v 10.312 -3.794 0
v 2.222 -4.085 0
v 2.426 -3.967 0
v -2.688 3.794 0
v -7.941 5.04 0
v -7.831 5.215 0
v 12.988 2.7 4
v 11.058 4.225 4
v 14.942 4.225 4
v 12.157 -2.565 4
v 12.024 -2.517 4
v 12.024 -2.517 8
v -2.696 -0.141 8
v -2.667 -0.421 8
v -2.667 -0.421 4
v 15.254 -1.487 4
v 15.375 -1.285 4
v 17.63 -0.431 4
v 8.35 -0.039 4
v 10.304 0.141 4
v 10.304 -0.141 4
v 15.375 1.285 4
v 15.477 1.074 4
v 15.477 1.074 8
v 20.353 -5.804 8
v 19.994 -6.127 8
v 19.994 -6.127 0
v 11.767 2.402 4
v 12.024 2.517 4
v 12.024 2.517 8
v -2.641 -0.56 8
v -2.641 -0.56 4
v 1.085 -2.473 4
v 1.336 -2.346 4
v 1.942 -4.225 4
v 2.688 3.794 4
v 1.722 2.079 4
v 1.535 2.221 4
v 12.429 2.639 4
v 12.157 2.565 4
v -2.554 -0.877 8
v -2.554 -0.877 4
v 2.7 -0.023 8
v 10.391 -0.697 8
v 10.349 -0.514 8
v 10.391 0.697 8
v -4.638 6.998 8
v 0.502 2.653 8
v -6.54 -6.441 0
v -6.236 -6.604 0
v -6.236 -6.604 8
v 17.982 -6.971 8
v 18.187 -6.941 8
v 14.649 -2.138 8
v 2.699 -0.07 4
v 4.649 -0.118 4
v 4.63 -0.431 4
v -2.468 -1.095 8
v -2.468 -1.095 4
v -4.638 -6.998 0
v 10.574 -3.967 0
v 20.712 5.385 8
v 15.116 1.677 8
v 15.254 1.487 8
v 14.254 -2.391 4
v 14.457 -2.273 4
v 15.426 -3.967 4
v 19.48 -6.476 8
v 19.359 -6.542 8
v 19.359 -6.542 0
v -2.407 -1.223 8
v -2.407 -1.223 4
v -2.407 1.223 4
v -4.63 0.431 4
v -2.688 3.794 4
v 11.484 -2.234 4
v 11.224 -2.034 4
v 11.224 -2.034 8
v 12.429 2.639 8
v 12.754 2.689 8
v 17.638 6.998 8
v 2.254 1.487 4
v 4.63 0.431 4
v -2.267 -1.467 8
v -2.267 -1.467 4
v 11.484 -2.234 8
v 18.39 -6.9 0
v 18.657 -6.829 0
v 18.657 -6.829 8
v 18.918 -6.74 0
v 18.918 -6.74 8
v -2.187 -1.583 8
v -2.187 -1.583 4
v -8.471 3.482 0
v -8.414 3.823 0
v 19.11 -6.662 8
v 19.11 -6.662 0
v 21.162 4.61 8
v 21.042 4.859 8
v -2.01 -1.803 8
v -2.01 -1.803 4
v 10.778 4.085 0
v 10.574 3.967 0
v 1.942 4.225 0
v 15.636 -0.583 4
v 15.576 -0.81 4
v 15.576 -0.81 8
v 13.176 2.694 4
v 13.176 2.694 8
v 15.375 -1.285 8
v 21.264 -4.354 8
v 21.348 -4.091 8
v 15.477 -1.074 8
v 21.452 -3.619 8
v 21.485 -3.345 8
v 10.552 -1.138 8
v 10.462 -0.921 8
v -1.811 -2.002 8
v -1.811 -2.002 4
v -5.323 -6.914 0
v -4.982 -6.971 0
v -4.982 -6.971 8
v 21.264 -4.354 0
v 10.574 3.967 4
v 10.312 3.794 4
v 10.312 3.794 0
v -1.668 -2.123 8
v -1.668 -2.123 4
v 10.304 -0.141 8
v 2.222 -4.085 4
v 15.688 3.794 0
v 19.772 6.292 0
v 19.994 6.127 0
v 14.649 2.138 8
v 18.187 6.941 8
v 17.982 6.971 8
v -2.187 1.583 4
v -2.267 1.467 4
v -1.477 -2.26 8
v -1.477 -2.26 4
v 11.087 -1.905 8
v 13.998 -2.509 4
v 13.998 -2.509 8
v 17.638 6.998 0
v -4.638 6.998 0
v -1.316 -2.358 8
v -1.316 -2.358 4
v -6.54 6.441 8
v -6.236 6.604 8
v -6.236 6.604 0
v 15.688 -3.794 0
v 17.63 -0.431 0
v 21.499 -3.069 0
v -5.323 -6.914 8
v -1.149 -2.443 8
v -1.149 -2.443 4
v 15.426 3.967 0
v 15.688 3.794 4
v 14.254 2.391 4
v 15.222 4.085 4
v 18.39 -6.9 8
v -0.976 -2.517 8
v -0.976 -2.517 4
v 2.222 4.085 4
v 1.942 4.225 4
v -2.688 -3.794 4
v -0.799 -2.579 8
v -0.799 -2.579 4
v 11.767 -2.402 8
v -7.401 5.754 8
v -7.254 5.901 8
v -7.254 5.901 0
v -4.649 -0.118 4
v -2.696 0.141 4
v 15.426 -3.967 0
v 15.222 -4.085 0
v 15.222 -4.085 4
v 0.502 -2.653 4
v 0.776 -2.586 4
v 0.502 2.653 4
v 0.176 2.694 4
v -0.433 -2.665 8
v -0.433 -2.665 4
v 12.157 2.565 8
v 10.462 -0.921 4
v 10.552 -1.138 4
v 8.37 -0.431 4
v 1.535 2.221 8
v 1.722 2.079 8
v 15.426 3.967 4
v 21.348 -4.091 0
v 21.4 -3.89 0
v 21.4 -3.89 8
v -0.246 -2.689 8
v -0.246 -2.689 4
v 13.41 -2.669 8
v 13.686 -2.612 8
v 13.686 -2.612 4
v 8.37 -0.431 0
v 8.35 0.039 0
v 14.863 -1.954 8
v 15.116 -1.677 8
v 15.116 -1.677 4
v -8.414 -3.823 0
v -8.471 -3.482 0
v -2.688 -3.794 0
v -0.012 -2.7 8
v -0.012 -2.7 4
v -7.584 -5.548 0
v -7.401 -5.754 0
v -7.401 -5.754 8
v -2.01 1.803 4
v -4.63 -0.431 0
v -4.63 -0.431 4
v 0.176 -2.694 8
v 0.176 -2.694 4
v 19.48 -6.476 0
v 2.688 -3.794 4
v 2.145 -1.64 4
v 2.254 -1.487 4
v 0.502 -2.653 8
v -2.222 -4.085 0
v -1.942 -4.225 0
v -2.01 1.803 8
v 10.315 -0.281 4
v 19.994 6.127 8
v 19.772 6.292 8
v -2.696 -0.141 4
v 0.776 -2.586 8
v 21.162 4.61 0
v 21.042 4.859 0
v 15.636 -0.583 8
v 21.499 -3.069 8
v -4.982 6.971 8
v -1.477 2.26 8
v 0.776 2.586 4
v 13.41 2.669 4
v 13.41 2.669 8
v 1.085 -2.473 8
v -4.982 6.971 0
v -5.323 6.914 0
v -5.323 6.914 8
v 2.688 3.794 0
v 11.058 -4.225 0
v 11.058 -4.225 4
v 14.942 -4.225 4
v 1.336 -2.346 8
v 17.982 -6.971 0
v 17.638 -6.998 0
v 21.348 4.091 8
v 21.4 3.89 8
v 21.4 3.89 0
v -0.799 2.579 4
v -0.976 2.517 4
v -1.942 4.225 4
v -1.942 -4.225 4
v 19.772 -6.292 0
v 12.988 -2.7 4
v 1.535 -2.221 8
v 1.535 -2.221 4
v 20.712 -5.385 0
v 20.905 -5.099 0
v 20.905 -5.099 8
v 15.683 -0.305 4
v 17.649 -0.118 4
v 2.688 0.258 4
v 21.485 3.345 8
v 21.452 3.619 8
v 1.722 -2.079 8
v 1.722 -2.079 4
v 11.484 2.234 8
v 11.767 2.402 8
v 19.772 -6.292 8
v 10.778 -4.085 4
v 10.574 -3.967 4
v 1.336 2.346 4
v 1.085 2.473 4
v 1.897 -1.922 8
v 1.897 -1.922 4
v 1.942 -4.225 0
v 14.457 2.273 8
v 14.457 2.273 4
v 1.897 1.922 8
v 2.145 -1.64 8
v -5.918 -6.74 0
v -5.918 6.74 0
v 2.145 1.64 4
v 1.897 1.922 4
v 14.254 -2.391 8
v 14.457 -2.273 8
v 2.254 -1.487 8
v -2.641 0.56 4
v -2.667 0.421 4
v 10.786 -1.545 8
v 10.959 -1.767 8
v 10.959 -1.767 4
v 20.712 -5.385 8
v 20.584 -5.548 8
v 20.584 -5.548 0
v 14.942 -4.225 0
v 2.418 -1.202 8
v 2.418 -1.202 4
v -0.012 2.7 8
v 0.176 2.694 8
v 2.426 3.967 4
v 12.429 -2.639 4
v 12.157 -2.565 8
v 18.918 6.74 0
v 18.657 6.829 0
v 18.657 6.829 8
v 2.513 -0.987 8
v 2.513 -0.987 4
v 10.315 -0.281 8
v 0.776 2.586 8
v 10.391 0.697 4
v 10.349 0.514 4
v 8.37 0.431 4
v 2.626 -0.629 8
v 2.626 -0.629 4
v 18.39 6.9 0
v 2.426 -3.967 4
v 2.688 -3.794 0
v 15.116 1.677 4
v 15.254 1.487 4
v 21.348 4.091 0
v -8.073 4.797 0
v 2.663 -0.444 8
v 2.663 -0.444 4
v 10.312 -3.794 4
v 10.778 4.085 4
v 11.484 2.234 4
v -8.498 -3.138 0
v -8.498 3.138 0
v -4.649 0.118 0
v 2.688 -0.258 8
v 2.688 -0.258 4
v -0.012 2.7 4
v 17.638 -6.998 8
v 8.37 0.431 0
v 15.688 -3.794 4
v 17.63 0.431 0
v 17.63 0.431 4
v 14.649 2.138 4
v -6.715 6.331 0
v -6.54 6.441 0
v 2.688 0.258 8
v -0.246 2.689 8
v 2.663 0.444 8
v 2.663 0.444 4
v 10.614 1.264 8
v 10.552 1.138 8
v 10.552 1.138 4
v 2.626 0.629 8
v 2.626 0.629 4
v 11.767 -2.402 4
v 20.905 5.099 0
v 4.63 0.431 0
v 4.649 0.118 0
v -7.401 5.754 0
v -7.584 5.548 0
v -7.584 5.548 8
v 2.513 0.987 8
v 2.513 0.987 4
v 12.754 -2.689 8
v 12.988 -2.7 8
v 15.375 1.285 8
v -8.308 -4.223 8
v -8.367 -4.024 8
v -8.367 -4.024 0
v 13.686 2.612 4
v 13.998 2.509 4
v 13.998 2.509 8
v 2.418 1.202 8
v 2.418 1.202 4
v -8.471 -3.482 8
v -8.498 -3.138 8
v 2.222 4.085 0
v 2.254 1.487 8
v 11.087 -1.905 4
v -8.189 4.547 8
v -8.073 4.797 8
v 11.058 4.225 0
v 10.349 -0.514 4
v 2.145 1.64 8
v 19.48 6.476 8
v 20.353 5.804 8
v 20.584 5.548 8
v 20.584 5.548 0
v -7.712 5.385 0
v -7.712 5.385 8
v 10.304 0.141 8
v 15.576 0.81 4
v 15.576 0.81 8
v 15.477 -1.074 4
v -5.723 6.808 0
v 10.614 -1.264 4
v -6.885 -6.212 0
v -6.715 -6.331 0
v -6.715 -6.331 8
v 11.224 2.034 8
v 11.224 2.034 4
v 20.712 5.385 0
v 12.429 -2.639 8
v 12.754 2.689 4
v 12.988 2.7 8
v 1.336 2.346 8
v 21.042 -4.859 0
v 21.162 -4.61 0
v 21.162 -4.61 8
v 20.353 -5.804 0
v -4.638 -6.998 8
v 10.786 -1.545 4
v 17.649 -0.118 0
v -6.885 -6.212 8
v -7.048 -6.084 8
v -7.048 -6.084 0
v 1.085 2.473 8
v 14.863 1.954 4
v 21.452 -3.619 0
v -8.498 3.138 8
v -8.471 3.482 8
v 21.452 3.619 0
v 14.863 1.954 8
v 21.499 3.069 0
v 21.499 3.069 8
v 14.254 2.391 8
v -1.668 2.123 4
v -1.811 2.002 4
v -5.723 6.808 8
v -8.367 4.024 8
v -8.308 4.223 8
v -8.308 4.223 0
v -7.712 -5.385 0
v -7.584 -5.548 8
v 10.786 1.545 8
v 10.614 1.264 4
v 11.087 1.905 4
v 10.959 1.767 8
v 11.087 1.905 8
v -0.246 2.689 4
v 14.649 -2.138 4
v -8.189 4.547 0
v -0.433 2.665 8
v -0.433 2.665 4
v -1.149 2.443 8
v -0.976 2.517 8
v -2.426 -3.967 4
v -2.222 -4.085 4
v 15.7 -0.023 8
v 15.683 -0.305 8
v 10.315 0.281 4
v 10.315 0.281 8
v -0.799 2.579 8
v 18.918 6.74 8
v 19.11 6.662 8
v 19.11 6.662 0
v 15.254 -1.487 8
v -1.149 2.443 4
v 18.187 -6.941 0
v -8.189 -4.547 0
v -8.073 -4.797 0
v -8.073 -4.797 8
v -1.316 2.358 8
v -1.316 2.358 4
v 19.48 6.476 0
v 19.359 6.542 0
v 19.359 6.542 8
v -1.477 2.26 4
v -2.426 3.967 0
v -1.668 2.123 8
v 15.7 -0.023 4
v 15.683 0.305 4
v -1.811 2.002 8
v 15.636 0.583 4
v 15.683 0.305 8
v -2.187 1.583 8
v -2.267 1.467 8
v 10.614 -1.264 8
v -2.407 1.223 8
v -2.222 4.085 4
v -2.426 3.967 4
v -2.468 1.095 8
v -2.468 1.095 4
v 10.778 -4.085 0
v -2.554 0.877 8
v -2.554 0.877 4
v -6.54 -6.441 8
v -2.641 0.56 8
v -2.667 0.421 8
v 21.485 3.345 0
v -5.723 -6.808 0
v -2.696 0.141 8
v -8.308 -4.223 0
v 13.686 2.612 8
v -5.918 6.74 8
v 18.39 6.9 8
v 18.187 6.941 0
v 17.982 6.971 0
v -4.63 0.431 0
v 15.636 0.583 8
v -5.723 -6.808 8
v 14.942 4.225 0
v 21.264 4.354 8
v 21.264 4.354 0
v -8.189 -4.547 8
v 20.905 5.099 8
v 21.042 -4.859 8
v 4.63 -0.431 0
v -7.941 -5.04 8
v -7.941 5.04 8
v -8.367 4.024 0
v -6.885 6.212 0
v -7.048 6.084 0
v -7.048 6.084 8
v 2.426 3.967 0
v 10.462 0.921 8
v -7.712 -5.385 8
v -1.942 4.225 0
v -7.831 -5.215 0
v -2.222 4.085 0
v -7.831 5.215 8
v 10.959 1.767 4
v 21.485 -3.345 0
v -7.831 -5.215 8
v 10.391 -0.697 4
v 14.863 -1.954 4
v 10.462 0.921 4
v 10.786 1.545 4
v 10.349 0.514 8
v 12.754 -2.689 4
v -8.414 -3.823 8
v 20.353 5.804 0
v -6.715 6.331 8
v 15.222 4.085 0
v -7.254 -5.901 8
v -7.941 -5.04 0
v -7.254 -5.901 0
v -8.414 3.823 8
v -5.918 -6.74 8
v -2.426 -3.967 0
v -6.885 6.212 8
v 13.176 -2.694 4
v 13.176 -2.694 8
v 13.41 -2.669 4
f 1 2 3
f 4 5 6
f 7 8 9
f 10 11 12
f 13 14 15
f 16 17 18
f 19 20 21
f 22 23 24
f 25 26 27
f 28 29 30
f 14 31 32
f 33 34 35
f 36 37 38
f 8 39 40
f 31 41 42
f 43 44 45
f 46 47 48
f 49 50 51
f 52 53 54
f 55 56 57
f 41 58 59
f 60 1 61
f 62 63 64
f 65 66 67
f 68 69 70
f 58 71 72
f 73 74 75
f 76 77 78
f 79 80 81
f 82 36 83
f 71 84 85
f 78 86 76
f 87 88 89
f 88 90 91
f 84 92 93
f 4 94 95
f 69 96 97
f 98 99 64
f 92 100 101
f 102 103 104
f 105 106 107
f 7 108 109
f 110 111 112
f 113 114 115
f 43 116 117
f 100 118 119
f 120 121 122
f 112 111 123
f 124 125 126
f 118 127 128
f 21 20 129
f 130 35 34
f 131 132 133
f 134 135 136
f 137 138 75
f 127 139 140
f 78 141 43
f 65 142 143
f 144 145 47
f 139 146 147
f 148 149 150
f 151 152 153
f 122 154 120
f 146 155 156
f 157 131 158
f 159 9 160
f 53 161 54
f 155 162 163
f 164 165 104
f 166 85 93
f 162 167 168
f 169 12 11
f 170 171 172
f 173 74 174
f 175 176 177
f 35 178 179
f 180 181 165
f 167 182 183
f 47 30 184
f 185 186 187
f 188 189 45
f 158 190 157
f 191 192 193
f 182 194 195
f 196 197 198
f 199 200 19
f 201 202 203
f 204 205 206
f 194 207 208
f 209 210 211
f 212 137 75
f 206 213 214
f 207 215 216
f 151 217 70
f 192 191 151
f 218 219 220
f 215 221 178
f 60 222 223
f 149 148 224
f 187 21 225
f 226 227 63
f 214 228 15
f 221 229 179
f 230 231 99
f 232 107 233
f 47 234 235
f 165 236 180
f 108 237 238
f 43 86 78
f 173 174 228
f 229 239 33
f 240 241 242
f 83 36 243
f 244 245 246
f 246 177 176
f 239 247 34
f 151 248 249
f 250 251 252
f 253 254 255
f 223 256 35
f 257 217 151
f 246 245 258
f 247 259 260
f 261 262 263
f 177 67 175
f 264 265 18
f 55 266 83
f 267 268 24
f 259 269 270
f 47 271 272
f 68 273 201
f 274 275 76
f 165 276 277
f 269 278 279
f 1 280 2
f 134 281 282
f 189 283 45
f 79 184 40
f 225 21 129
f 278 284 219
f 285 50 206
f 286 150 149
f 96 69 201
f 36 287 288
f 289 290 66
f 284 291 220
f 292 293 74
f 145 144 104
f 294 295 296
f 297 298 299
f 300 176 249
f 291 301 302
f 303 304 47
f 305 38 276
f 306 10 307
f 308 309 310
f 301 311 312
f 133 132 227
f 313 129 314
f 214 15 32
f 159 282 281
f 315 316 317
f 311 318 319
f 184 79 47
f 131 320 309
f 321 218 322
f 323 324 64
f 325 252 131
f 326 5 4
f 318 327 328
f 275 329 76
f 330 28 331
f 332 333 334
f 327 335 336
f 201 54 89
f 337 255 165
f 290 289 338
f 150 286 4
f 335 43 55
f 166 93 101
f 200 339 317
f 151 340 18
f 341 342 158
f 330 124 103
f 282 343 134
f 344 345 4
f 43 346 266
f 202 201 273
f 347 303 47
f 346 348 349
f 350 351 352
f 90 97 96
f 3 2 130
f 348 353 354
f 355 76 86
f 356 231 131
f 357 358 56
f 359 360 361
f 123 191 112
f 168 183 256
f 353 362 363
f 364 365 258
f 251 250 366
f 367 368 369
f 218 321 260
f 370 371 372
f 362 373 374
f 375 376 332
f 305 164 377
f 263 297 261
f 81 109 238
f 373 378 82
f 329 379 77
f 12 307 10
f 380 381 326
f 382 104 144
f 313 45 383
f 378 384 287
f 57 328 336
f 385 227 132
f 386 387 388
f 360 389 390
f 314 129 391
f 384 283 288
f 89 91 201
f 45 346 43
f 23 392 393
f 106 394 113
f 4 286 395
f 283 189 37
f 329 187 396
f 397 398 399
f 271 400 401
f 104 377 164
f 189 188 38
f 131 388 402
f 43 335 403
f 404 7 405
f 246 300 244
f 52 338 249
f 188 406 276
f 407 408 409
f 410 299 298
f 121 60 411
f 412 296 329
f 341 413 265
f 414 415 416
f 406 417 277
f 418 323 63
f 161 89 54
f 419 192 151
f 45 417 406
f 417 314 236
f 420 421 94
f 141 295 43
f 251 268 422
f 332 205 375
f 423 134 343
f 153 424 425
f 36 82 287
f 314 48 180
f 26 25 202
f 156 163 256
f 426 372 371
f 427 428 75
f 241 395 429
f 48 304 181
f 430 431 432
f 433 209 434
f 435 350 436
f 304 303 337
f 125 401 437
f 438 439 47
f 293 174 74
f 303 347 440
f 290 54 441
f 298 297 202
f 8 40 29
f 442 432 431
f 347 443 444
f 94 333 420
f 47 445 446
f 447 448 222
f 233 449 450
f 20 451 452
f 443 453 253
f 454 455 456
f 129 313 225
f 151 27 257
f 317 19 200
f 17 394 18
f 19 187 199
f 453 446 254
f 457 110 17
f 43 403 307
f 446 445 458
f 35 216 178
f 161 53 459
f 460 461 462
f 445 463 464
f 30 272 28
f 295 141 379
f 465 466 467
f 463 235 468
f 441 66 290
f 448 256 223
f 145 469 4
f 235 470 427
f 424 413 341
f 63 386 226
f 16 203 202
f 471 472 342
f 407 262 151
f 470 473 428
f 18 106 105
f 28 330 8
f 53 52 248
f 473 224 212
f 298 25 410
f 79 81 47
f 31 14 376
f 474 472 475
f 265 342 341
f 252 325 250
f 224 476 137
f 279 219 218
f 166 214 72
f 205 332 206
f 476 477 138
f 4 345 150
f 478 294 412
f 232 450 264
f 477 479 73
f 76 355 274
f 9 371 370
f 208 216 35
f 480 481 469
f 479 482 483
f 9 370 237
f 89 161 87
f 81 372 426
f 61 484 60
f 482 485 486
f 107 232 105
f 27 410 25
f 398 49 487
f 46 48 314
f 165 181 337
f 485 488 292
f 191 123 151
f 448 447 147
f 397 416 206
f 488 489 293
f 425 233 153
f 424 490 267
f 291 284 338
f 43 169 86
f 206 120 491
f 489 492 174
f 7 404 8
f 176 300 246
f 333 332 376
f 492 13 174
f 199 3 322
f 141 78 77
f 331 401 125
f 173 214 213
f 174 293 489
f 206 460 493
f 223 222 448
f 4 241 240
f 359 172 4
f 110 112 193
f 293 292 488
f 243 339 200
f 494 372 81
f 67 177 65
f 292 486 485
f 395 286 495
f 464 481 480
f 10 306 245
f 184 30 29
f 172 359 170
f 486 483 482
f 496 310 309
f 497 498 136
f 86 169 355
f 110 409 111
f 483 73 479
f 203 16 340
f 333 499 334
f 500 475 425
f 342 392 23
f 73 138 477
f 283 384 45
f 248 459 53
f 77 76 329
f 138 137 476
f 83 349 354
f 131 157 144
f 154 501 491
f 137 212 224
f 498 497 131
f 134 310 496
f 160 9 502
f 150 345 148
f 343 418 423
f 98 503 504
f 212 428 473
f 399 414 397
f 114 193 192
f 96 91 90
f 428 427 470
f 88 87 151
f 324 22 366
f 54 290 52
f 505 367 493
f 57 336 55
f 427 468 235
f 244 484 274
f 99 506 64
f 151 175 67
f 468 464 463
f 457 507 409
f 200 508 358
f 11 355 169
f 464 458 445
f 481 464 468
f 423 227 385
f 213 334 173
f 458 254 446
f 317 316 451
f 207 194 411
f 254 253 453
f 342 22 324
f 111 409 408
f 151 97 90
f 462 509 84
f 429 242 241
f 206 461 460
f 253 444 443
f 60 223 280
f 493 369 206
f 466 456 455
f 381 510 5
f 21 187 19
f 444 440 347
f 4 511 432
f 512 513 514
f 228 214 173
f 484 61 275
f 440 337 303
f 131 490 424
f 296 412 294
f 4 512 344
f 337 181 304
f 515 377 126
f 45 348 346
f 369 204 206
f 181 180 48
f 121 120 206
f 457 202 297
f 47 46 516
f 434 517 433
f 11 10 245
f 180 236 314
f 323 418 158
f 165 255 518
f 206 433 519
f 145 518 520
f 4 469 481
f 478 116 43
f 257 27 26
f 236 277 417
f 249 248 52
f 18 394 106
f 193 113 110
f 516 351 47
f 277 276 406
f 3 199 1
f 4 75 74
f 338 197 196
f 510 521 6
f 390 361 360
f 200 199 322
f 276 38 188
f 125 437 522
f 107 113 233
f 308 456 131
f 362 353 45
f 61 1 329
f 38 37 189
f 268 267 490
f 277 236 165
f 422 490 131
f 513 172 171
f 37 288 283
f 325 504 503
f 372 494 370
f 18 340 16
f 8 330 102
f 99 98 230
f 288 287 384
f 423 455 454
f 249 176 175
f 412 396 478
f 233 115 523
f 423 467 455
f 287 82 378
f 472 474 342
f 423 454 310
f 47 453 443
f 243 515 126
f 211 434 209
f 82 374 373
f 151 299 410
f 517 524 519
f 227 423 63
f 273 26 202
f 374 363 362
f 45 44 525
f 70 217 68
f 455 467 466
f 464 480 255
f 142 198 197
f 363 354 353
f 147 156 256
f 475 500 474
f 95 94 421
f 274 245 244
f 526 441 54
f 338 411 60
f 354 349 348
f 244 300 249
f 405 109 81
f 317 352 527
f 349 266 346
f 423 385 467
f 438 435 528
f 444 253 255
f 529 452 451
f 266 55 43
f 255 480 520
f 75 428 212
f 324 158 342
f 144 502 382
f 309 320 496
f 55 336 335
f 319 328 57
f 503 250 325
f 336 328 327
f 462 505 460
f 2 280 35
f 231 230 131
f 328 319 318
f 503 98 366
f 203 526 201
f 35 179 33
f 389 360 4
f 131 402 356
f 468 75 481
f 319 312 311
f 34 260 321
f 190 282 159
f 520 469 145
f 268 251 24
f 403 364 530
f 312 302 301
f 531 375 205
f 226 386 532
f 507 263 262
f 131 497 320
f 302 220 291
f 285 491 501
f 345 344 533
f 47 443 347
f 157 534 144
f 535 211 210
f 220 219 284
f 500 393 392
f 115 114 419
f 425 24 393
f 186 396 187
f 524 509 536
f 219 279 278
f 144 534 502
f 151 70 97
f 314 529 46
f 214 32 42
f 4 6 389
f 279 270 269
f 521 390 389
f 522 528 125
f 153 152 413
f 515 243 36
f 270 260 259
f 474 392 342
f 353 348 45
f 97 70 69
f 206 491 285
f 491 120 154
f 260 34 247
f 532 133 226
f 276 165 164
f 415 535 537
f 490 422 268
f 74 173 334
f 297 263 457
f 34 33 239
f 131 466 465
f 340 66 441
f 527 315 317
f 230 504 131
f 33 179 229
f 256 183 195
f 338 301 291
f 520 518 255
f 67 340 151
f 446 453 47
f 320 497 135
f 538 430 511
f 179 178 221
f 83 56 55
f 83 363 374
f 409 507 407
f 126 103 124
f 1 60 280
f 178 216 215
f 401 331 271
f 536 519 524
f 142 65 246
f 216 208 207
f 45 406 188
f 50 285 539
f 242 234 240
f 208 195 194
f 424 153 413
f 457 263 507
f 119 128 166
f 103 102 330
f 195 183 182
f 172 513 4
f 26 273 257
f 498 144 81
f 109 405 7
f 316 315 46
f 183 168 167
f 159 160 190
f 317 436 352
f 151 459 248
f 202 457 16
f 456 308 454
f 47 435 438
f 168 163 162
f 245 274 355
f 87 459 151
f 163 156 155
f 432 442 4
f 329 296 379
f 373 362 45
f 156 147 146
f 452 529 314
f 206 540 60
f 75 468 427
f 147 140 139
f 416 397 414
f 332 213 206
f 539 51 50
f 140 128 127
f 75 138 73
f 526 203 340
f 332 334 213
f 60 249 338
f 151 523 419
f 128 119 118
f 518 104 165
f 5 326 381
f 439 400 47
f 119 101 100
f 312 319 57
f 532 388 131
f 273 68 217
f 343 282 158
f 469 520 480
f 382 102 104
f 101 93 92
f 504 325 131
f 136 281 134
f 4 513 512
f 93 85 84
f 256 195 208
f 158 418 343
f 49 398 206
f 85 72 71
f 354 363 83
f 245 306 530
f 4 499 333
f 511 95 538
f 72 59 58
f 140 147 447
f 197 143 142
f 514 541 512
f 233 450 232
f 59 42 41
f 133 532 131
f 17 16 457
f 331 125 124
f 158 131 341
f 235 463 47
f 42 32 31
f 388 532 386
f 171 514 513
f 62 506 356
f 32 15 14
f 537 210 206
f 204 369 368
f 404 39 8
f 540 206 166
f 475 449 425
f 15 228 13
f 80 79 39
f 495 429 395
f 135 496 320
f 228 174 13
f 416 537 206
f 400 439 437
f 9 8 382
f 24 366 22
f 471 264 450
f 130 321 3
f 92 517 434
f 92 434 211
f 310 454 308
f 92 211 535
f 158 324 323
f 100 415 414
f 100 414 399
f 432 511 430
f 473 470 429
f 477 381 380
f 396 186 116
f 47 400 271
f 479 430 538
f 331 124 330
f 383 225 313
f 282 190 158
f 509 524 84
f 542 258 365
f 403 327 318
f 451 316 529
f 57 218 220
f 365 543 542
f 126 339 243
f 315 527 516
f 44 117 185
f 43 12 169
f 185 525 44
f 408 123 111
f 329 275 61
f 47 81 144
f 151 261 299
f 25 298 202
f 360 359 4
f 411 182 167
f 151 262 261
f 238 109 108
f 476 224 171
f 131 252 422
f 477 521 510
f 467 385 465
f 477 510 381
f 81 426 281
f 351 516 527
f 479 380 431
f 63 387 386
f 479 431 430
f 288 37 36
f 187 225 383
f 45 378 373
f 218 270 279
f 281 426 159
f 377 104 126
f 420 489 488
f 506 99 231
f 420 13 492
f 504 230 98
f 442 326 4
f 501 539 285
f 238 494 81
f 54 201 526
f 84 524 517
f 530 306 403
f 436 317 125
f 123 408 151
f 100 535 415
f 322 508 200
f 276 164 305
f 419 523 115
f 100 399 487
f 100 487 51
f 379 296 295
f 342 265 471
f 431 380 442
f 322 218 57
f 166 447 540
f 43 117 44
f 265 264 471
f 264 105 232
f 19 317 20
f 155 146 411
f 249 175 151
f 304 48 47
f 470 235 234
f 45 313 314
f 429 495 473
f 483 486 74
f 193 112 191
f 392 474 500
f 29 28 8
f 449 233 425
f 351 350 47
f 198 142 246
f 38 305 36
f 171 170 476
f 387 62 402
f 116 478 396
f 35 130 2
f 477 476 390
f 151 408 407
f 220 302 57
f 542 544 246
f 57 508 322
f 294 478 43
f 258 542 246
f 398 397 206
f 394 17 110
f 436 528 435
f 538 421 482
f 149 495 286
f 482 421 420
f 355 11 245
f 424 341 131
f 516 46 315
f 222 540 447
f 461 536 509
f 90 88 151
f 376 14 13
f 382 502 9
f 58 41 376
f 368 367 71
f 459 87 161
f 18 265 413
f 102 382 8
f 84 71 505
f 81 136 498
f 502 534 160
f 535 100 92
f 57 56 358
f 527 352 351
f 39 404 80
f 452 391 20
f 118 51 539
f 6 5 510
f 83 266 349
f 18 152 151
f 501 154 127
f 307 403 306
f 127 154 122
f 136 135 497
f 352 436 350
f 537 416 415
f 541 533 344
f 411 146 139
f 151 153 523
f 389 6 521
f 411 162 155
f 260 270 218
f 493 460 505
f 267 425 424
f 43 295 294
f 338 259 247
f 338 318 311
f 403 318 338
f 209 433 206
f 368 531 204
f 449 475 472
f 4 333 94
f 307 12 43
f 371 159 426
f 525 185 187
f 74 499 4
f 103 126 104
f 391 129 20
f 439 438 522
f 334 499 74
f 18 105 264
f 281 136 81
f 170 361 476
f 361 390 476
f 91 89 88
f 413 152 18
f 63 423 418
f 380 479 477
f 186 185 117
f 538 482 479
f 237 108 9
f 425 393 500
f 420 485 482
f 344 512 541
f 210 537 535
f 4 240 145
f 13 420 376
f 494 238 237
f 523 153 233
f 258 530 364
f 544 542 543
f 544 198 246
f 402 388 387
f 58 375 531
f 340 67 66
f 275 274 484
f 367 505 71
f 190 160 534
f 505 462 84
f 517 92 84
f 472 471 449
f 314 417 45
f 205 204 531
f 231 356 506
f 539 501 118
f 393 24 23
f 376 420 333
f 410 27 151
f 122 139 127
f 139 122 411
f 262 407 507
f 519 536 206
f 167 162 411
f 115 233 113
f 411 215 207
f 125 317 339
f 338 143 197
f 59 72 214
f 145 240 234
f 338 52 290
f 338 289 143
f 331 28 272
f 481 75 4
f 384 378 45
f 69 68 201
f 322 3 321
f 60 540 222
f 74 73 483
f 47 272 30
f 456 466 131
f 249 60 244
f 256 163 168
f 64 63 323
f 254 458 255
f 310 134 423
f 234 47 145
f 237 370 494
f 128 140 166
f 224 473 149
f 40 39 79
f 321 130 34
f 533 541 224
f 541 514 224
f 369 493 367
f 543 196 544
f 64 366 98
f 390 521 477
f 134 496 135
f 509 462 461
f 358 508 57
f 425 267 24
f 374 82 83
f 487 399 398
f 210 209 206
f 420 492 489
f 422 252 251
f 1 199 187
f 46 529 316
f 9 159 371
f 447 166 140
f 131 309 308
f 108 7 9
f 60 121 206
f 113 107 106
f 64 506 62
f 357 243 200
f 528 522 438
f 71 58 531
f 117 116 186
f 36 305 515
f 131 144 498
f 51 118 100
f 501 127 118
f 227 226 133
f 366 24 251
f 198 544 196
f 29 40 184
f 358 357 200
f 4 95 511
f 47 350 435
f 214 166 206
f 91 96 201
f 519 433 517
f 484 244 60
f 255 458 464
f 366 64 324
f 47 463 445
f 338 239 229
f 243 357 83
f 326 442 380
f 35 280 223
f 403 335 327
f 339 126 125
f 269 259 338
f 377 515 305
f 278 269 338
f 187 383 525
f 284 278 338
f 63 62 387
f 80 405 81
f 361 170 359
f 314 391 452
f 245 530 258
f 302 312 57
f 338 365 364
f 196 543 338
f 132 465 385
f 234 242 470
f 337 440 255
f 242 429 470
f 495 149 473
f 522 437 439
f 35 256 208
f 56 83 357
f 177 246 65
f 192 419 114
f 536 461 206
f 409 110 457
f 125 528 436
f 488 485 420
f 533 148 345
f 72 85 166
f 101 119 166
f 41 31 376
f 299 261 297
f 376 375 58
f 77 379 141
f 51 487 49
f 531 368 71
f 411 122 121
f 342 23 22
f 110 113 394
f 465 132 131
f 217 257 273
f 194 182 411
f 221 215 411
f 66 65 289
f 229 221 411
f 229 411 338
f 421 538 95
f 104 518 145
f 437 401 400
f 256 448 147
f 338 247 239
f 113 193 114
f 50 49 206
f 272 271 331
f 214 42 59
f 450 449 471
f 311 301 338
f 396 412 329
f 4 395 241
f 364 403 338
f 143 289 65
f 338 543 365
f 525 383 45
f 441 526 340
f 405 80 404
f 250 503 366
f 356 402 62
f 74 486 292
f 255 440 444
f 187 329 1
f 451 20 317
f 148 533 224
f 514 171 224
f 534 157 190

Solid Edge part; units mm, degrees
sketch "Sketch1" plane through (0, 0, 0) normal (0, 0, 1) x (1, 0, 0)
  line L0 (-4.5, -7) -> (17.5, -7)
  arc A0 (17.5, -7) -> (21.5, -3) centre (17.5, -3) ccw
  line L1 (21.5, -3) -> (21.5, 3)
  arc A1 (21.5, 3) -> (17.5, 7) centre (17.5, 3) ccw
  line L2 (17.5, 7) -> (-4.5, 7)
  arc A2 (-4.5, 7) -> (-8.5, 3) centre (-4.5, 3) ccw
  line L3 (-8.5, 3) -> (-8.5, -3)
  arc A3 (-8.5, -3) -> (-4.5, -7) centre (-4.5, -3) ccw
extrude "Protrusion1" add sketch "Sketch1" along normal blind 8
sketch "Sketch2" plane through (0, 0, 0) normal (0, 0, 1) x (1, 0, 0)
  line L0 (-1.9421, -4.225) -> (0, -4.225)
  line L1 (1.9421, -4.225) -> (0, -4.225)
  arc A0 (2.6879, -3.7944) -> (1.9421, -4.225) centre (0, 0) cw
  line L2 (2.6879, -3.7944) -> (3.659, -2.1125)
  line L3 (4.63, -0.4306) -> (3.659, -2.1125)
  arc A1 (4.63, 0.4306) -> (4.63, -0.4306) centre (0, 0) cw
  line L4 (4.63, 0.4306) -> (3.659, 2.1125)
  line L5 (2.6879, 3.7944) -> (3.659, 2.1125)
  arc A2 (1.9421, 4.225) -> (2.6879, 3.7944) centre (0, 0) cw
  line L6 (1.9421, 4.225) -> (0, 4.225)
  line L7 (-1.9421, 4.225) -> (0, 4.225)
  arc A3 (-2.6879, 3.7944) -> (-1.9421, 4.225) centre (0, 0) cw
  line L8 (-2.6879, 3.7944) -> (-3.659, 2.1125)
  line L9 (-4.63, 0.4306) -> (-3.659, 2.1125)
  arc A4 (-4.63, -0.4306) -> (-4.63, 0.4306) centre (0, 0) cw
  line L10 (-4.63, -0.4306) -> (-3.659, -2.1125)
  line L11 (-2.6879, -3.7944) -> (-3.659, -2.1125)
  arc A5 (-1.9421, -4.225) -> (-2.6879, -3.7944) centre (0, 0) cw
  line L12 (11.0579, -4.225) -> (13, -4.225)
  line L13 (14.9421, -4.225) -> (13, -4.225)
  arc A6 (15.6879, -3.7944) -> (14.9421, -4.225) centre (13, 0) cw
  line L14 (15.6879, -3.7944) -> (16.659, -2.1125)
  line L15 (17.63, -0.4306) -> (16.659, -2.1125)
  arc A7 (17.63, 0.4306) -> (17.63, -0.4306) centre (13, 0) cw
  line L16 (17.63, 0.4306) -> (16.659, 2.1125)
  line L17 (15.6879, 3.7944) -> (16.659, 2.1125)
  arc A8 (14.9421, 4.225) -> (15.6879, 3.7944) centre (13, 0) cw
  line L18 (14.9421, 4.225) -> (13, 4.225)
  line L19 (11.0579, 4.225) -> (13, 4.225)
  arc A9 (10.3121, 3.7944) -> (11.0579, 4.225) centre (13, 0) cw
  line L20 (10.3121, 3.7944) -> (9.341, 2.1125)
  line L21 (8.37, 0.4306) -> (9.341, 2.1125)
  arc A10 (8.37, -0.4306) -> (8.37, 0.4306) centre (13, 0) cw
  line L22 (8.37, -0.4306) -> (9.341, -2.1125)
  line L23 (10.3121, -3.7944) -> (9.341, -2.1125)
  arc A11 (11.0579, -4.225) -> (10.3121, -3.7944) centre (13, 0) cw
  dimension "D1" = 6
  dimension "D2" = 13
  dimension "D3" = 22
extrude "ExtrudedCutout_1" cut sketch "Sketch2" along normal blind 4
sketch "Sketch3" plane through (0, 0, 0) normal (0, 0, 1) x (1, 0, 0)
  circle A0 centre (0, 0) radius 2.7
  circle A1 centre (13, 0) radius 2.7
  dimension "D1" = 6
  dimension "D2" = 13
  dimension "D3" = 22
extrude "Cutout1" cut sketch "Sketch3" along normal through all
chamfer "Chamfer_1" [suppressed]
properties material "ABS Plastic, medium impact"
